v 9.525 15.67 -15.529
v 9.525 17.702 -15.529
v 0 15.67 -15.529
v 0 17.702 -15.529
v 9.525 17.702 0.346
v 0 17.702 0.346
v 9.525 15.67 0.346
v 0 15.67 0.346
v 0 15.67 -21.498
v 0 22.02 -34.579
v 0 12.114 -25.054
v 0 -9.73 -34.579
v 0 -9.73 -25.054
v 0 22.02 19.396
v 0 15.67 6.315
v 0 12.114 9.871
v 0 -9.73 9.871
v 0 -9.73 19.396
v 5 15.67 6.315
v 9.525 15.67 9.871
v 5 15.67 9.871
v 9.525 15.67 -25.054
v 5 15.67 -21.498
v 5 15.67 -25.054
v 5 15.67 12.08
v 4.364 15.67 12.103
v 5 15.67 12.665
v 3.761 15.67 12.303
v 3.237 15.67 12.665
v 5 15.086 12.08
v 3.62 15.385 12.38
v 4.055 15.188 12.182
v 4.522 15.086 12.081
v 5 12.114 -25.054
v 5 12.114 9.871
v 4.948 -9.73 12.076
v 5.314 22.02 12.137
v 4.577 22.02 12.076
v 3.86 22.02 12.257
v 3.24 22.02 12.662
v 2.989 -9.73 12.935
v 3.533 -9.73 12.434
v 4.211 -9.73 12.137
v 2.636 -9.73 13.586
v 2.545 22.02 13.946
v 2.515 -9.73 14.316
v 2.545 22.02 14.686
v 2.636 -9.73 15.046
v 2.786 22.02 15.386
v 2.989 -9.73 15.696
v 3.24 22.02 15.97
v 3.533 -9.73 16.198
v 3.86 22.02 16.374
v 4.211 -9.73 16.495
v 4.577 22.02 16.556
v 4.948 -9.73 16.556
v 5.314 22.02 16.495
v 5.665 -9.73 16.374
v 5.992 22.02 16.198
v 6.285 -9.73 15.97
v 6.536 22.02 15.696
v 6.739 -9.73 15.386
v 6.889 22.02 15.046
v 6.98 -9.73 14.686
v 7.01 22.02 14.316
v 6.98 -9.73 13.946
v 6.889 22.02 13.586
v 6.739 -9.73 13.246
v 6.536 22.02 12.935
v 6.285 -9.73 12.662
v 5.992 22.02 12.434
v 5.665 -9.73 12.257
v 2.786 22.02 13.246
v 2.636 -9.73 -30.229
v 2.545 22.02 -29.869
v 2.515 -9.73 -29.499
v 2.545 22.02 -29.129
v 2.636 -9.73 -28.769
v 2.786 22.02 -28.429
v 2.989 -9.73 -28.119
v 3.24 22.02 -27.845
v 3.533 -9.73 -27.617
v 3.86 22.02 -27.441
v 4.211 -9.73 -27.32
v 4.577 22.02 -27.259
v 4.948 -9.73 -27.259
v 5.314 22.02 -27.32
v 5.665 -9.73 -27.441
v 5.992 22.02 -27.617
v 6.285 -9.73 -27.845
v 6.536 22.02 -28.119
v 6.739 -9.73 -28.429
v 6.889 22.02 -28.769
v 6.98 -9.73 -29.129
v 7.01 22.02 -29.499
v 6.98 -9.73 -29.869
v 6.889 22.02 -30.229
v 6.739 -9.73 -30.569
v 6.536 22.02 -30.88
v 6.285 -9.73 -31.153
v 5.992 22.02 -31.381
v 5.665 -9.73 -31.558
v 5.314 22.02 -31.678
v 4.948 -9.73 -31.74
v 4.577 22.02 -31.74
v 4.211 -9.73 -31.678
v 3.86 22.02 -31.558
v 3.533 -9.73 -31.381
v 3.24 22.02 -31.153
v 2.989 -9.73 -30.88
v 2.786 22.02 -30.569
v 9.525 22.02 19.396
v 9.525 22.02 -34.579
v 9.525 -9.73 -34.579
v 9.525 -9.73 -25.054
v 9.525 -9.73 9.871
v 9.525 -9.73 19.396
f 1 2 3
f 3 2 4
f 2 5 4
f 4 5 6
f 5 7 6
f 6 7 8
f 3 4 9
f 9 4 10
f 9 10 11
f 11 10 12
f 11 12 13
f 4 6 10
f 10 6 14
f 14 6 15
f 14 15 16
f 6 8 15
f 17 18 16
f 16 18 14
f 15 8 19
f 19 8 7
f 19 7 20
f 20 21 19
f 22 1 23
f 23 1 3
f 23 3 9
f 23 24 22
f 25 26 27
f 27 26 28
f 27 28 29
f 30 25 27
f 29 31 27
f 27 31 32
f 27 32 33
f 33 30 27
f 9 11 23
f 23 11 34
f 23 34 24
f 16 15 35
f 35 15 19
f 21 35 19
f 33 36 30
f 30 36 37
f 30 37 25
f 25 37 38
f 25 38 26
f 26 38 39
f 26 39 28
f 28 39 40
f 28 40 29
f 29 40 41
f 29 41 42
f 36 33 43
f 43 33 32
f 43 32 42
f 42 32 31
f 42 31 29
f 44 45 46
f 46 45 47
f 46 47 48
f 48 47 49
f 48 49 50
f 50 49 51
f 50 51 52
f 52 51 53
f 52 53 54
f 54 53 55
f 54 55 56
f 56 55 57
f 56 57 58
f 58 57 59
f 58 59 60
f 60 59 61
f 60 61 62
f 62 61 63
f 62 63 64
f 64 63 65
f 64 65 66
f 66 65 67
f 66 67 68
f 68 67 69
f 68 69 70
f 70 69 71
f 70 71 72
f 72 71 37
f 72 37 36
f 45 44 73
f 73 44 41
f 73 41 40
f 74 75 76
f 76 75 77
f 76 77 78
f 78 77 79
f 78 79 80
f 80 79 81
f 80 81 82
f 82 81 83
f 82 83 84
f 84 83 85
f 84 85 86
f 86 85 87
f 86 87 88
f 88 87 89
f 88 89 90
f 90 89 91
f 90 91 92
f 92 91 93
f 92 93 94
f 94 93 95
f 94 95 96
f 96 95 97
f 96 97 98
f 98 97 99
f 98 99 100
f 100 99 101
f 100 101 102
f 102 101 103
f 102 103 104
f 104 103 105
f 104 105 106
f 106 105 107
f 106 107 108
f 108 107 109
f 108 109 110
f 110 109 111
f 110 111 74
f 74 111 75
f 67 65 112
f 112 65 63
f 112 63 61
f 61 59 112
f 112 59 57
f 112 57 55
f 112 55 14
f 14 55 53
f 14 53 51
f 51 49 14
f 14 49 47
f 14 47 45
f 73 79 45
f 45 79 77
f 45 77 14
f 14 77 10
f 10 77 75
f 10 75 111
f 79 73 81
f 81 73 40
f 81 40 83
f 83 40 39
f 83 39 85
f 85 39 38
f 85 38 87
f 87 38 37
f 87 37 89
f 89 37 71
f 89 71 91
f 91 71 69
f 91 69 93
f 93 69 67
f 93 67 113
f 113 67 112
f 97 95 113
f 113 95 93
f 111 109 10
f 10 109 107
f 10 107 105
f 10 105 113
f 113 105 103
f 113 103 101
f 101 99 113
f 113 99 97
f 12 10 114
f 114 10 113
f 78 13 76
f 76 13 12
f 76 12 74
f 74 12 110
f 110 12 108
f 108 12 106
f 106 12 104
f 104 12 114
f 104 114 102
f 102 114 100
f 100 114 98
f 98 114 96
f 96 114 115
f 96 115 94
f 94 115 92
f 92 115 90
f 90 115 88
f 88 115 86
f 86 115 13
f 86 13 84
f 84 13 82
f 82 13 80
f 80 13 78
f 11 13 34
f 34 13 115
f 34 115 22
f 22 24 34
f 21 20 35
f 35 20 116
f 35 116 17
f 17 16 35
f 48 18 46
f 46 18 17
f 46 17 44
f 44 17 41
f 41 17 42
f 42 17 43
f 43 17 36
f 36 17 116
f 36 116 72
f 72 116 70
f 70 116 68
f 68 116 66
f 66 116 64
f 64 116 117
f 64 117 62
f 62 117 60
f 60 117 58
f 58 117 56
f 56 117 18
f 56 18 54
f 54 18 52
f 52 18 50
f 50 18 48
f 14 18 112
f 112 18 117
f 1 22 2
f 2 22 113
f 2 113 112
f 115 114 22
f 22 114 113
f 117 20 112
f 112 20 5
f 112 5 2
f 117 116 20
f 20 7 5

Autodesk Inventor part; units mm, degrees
ref_plane "YZ Plane" through (0, 0, 0) normal (1, 0, 0) x (0, 1, 0)
ref_plane "XZ Plane" through (0, 0, 0) normal (0, 1, 0) x (-1, 0, 0)
ref_plane "XY Plane" through (0, 0, 0) normal (0, 0, 1) x (1, 0, 0)
sketch "Sketch1" plane through (0, 0, 0) normal (1, 0, 0) x (0, 1, 0)
  line L0 (22.0204, 19.3957) -> (-9.7296, 19.3957)
  line L1 (-9.7296, -34.5793) -> (22.0204, -34.5793)
  line L2 (22.0204, -34.5793) -> (22.0204, 19.3957)
  line L3 (15.6704, 9.8707) -> (-9.7296, 9.8707)
  line L4 (-9.7296, -25.0543) -> (15.6704, -25.0543)
  line L5 (15.6704, -25.0543) -> (15.6704, 9.8707)
  line L6 (-9.7296, 19.3957) -> (-9.7296, 9.8707)
  line L7 (-9.7296, -25.0543) -> (-9.7296, -34.5793)
  dimension "d0" = 53.975
  dimension "d2" = 6.35
  dimension "d3" = 9.525
  dimension "d4" = 9.525
  dimension "d7" = 25.4
  dimension "d8" = 0
extrude "Extrusion1" add sketch "Sketch1" along normal blind 9.525
sketch "Sketch2" plane through (0, 22.0204, 19.3957) normal (0, 1, 0) x (1, 0, 0)
  line L0 (0, 53.975) -> (9.525, 53.975) projected
  line L1 (0, 0) -> (9.525, 0) projected
  line L2 (0, 53.975) -> (0, 0) projected
  point P0 (0, 19.3957)
  point P1 (4.7625, 5.08)
  point P2 (4.7625, 48.895)
  dimension "d9" = 5.08
  dimension "d10" = 5.08
  dimension "d11" = 4.7625
  dimension "d12" = 0
hole "Hole1" at (4.7625, 22.0204, 14.3157) at (4.7625, 22.0204, -29.4993) direction (0, -1, 0) diameter 4.4958 end through all clearance for "Flat Head Machine Screw (82)" size "#8" standard "Ansi Unified Screw Threads"
sketch "Sketch4" plane through (0, 0, 0) normal (-1, 0, 0) x (0, 0, 1)
  line L0 (9.8707, 15.6704) -> (-25.0543, 15.6704) projected
  line L1 (9.8707, -9.7296) -> (9.8707, 15.6704) projected
  line L2 (-25.0543, 15.6704) -> (-25.0543, -9.7296) projected
  line L3 (-25.0543, 12.1144) -> (-21.4983, 15.6704)
  line L4 (-21.4983, 15.6704) -> (-25.0543, 15.6704)
  line L5 (-25.0543, 15.6704) -> (-25.0543, 12.1144)
  line L6 (9.8707, 12.1144) -> (9.8707, 15.6704)
  line L7 (9.8707, 15.6704) -> (6.3147, 15.6704)
  line L8 (6.3147, 15.6704) -> (9.8707, 12.1144)
  point P0 (0, 0)
  dimension "d20" = 45
  dimension "d21" = 3.556
  dimension "d22" = 0
  dimension "d23" = 0
  dimension "d24" = 45
  dimension "d25" = 3.556
  dimension "d26" = 0
  dimension "d27" = 0
extrude "Extrusion2" add sketch "Sketch4" against normal blind 5
sketch "Sketch5" plane through (0, 0, 0) normal (-1, 0, 0) x (0, 0, 1)
  line L0 (7.0767, 15.6704) -> (12.6647, 15.6704)
  line L1 (12.6647, 15.6704) -> (9.8707, 12.8764)
  line L2 (9.8707, 12.8764) -> (7.0767, 15.6704)
  line L3 (6.3147, 15.6704) -> (-21.4983, 15.6704) projected
  line L4 (-34.5793, -9.7296) -> (-34.5793, 22.0204) projected
  point P0 (0, 0)
  dimension "d30" = 90
  dimension "d31" = 45
  dimension "d32" = 2.794
  dimension "d33" = 0
  dimension "d34" = 44.45
extrude "Extrusion3" add sketch "Sketch5" against normal blind 5
sketch "Sketch6" plane through (0, 0, 0) normal (-1, 0, 0) x (0, 0, 1)
  line L0 (-0.2893, 9.5064) -> (-15.5293, 9.5064)
  line L1 (-15.5293, 9.5064) -> (-15.5293, 17.7024)
  line L2 (-15.5293, 17.7024) -> (-0.2893, 17.7024)
  line L3 (-0.2893, 17.7024) -> (-0.2893, 9.5064)
  line L4 (0.3457, 11.3259) -> (-14.8943, 11.3259)
  line L5 (-14.8943, 11.3259) -> (-14.8943, 17.7024)
  line L6 (-14.8943, 17.7024) -> (0.3457, 17.7024)
  line L7 (0.3457, 17.7024) -> (0.3457, 11.3259)
  line L8 (6.3147, 15.6704) -> (-21.4983, 15.6704) projected
  line L9 (-34.5793, -9.7296) -> (-34.5793, 22.0204) projected
  line L10 (19.3957, 22.0204) -> (19.3957, -9.7296) projected
  point P0 (0, 0)
  point P1 (12.6647, 15.6704)
  dimension "d37" = 2.032
  dimension "d38" = 0
  dimension "d39" = 19.05
  dimension "d40" = 19.05
  dimension "d42" = 15.24
  dimension "d43" = 15.24
extrude "Extrusion4" cut sketch "Sketch6" against normal blind 254
properties part number "OneSparkMaxTop"
